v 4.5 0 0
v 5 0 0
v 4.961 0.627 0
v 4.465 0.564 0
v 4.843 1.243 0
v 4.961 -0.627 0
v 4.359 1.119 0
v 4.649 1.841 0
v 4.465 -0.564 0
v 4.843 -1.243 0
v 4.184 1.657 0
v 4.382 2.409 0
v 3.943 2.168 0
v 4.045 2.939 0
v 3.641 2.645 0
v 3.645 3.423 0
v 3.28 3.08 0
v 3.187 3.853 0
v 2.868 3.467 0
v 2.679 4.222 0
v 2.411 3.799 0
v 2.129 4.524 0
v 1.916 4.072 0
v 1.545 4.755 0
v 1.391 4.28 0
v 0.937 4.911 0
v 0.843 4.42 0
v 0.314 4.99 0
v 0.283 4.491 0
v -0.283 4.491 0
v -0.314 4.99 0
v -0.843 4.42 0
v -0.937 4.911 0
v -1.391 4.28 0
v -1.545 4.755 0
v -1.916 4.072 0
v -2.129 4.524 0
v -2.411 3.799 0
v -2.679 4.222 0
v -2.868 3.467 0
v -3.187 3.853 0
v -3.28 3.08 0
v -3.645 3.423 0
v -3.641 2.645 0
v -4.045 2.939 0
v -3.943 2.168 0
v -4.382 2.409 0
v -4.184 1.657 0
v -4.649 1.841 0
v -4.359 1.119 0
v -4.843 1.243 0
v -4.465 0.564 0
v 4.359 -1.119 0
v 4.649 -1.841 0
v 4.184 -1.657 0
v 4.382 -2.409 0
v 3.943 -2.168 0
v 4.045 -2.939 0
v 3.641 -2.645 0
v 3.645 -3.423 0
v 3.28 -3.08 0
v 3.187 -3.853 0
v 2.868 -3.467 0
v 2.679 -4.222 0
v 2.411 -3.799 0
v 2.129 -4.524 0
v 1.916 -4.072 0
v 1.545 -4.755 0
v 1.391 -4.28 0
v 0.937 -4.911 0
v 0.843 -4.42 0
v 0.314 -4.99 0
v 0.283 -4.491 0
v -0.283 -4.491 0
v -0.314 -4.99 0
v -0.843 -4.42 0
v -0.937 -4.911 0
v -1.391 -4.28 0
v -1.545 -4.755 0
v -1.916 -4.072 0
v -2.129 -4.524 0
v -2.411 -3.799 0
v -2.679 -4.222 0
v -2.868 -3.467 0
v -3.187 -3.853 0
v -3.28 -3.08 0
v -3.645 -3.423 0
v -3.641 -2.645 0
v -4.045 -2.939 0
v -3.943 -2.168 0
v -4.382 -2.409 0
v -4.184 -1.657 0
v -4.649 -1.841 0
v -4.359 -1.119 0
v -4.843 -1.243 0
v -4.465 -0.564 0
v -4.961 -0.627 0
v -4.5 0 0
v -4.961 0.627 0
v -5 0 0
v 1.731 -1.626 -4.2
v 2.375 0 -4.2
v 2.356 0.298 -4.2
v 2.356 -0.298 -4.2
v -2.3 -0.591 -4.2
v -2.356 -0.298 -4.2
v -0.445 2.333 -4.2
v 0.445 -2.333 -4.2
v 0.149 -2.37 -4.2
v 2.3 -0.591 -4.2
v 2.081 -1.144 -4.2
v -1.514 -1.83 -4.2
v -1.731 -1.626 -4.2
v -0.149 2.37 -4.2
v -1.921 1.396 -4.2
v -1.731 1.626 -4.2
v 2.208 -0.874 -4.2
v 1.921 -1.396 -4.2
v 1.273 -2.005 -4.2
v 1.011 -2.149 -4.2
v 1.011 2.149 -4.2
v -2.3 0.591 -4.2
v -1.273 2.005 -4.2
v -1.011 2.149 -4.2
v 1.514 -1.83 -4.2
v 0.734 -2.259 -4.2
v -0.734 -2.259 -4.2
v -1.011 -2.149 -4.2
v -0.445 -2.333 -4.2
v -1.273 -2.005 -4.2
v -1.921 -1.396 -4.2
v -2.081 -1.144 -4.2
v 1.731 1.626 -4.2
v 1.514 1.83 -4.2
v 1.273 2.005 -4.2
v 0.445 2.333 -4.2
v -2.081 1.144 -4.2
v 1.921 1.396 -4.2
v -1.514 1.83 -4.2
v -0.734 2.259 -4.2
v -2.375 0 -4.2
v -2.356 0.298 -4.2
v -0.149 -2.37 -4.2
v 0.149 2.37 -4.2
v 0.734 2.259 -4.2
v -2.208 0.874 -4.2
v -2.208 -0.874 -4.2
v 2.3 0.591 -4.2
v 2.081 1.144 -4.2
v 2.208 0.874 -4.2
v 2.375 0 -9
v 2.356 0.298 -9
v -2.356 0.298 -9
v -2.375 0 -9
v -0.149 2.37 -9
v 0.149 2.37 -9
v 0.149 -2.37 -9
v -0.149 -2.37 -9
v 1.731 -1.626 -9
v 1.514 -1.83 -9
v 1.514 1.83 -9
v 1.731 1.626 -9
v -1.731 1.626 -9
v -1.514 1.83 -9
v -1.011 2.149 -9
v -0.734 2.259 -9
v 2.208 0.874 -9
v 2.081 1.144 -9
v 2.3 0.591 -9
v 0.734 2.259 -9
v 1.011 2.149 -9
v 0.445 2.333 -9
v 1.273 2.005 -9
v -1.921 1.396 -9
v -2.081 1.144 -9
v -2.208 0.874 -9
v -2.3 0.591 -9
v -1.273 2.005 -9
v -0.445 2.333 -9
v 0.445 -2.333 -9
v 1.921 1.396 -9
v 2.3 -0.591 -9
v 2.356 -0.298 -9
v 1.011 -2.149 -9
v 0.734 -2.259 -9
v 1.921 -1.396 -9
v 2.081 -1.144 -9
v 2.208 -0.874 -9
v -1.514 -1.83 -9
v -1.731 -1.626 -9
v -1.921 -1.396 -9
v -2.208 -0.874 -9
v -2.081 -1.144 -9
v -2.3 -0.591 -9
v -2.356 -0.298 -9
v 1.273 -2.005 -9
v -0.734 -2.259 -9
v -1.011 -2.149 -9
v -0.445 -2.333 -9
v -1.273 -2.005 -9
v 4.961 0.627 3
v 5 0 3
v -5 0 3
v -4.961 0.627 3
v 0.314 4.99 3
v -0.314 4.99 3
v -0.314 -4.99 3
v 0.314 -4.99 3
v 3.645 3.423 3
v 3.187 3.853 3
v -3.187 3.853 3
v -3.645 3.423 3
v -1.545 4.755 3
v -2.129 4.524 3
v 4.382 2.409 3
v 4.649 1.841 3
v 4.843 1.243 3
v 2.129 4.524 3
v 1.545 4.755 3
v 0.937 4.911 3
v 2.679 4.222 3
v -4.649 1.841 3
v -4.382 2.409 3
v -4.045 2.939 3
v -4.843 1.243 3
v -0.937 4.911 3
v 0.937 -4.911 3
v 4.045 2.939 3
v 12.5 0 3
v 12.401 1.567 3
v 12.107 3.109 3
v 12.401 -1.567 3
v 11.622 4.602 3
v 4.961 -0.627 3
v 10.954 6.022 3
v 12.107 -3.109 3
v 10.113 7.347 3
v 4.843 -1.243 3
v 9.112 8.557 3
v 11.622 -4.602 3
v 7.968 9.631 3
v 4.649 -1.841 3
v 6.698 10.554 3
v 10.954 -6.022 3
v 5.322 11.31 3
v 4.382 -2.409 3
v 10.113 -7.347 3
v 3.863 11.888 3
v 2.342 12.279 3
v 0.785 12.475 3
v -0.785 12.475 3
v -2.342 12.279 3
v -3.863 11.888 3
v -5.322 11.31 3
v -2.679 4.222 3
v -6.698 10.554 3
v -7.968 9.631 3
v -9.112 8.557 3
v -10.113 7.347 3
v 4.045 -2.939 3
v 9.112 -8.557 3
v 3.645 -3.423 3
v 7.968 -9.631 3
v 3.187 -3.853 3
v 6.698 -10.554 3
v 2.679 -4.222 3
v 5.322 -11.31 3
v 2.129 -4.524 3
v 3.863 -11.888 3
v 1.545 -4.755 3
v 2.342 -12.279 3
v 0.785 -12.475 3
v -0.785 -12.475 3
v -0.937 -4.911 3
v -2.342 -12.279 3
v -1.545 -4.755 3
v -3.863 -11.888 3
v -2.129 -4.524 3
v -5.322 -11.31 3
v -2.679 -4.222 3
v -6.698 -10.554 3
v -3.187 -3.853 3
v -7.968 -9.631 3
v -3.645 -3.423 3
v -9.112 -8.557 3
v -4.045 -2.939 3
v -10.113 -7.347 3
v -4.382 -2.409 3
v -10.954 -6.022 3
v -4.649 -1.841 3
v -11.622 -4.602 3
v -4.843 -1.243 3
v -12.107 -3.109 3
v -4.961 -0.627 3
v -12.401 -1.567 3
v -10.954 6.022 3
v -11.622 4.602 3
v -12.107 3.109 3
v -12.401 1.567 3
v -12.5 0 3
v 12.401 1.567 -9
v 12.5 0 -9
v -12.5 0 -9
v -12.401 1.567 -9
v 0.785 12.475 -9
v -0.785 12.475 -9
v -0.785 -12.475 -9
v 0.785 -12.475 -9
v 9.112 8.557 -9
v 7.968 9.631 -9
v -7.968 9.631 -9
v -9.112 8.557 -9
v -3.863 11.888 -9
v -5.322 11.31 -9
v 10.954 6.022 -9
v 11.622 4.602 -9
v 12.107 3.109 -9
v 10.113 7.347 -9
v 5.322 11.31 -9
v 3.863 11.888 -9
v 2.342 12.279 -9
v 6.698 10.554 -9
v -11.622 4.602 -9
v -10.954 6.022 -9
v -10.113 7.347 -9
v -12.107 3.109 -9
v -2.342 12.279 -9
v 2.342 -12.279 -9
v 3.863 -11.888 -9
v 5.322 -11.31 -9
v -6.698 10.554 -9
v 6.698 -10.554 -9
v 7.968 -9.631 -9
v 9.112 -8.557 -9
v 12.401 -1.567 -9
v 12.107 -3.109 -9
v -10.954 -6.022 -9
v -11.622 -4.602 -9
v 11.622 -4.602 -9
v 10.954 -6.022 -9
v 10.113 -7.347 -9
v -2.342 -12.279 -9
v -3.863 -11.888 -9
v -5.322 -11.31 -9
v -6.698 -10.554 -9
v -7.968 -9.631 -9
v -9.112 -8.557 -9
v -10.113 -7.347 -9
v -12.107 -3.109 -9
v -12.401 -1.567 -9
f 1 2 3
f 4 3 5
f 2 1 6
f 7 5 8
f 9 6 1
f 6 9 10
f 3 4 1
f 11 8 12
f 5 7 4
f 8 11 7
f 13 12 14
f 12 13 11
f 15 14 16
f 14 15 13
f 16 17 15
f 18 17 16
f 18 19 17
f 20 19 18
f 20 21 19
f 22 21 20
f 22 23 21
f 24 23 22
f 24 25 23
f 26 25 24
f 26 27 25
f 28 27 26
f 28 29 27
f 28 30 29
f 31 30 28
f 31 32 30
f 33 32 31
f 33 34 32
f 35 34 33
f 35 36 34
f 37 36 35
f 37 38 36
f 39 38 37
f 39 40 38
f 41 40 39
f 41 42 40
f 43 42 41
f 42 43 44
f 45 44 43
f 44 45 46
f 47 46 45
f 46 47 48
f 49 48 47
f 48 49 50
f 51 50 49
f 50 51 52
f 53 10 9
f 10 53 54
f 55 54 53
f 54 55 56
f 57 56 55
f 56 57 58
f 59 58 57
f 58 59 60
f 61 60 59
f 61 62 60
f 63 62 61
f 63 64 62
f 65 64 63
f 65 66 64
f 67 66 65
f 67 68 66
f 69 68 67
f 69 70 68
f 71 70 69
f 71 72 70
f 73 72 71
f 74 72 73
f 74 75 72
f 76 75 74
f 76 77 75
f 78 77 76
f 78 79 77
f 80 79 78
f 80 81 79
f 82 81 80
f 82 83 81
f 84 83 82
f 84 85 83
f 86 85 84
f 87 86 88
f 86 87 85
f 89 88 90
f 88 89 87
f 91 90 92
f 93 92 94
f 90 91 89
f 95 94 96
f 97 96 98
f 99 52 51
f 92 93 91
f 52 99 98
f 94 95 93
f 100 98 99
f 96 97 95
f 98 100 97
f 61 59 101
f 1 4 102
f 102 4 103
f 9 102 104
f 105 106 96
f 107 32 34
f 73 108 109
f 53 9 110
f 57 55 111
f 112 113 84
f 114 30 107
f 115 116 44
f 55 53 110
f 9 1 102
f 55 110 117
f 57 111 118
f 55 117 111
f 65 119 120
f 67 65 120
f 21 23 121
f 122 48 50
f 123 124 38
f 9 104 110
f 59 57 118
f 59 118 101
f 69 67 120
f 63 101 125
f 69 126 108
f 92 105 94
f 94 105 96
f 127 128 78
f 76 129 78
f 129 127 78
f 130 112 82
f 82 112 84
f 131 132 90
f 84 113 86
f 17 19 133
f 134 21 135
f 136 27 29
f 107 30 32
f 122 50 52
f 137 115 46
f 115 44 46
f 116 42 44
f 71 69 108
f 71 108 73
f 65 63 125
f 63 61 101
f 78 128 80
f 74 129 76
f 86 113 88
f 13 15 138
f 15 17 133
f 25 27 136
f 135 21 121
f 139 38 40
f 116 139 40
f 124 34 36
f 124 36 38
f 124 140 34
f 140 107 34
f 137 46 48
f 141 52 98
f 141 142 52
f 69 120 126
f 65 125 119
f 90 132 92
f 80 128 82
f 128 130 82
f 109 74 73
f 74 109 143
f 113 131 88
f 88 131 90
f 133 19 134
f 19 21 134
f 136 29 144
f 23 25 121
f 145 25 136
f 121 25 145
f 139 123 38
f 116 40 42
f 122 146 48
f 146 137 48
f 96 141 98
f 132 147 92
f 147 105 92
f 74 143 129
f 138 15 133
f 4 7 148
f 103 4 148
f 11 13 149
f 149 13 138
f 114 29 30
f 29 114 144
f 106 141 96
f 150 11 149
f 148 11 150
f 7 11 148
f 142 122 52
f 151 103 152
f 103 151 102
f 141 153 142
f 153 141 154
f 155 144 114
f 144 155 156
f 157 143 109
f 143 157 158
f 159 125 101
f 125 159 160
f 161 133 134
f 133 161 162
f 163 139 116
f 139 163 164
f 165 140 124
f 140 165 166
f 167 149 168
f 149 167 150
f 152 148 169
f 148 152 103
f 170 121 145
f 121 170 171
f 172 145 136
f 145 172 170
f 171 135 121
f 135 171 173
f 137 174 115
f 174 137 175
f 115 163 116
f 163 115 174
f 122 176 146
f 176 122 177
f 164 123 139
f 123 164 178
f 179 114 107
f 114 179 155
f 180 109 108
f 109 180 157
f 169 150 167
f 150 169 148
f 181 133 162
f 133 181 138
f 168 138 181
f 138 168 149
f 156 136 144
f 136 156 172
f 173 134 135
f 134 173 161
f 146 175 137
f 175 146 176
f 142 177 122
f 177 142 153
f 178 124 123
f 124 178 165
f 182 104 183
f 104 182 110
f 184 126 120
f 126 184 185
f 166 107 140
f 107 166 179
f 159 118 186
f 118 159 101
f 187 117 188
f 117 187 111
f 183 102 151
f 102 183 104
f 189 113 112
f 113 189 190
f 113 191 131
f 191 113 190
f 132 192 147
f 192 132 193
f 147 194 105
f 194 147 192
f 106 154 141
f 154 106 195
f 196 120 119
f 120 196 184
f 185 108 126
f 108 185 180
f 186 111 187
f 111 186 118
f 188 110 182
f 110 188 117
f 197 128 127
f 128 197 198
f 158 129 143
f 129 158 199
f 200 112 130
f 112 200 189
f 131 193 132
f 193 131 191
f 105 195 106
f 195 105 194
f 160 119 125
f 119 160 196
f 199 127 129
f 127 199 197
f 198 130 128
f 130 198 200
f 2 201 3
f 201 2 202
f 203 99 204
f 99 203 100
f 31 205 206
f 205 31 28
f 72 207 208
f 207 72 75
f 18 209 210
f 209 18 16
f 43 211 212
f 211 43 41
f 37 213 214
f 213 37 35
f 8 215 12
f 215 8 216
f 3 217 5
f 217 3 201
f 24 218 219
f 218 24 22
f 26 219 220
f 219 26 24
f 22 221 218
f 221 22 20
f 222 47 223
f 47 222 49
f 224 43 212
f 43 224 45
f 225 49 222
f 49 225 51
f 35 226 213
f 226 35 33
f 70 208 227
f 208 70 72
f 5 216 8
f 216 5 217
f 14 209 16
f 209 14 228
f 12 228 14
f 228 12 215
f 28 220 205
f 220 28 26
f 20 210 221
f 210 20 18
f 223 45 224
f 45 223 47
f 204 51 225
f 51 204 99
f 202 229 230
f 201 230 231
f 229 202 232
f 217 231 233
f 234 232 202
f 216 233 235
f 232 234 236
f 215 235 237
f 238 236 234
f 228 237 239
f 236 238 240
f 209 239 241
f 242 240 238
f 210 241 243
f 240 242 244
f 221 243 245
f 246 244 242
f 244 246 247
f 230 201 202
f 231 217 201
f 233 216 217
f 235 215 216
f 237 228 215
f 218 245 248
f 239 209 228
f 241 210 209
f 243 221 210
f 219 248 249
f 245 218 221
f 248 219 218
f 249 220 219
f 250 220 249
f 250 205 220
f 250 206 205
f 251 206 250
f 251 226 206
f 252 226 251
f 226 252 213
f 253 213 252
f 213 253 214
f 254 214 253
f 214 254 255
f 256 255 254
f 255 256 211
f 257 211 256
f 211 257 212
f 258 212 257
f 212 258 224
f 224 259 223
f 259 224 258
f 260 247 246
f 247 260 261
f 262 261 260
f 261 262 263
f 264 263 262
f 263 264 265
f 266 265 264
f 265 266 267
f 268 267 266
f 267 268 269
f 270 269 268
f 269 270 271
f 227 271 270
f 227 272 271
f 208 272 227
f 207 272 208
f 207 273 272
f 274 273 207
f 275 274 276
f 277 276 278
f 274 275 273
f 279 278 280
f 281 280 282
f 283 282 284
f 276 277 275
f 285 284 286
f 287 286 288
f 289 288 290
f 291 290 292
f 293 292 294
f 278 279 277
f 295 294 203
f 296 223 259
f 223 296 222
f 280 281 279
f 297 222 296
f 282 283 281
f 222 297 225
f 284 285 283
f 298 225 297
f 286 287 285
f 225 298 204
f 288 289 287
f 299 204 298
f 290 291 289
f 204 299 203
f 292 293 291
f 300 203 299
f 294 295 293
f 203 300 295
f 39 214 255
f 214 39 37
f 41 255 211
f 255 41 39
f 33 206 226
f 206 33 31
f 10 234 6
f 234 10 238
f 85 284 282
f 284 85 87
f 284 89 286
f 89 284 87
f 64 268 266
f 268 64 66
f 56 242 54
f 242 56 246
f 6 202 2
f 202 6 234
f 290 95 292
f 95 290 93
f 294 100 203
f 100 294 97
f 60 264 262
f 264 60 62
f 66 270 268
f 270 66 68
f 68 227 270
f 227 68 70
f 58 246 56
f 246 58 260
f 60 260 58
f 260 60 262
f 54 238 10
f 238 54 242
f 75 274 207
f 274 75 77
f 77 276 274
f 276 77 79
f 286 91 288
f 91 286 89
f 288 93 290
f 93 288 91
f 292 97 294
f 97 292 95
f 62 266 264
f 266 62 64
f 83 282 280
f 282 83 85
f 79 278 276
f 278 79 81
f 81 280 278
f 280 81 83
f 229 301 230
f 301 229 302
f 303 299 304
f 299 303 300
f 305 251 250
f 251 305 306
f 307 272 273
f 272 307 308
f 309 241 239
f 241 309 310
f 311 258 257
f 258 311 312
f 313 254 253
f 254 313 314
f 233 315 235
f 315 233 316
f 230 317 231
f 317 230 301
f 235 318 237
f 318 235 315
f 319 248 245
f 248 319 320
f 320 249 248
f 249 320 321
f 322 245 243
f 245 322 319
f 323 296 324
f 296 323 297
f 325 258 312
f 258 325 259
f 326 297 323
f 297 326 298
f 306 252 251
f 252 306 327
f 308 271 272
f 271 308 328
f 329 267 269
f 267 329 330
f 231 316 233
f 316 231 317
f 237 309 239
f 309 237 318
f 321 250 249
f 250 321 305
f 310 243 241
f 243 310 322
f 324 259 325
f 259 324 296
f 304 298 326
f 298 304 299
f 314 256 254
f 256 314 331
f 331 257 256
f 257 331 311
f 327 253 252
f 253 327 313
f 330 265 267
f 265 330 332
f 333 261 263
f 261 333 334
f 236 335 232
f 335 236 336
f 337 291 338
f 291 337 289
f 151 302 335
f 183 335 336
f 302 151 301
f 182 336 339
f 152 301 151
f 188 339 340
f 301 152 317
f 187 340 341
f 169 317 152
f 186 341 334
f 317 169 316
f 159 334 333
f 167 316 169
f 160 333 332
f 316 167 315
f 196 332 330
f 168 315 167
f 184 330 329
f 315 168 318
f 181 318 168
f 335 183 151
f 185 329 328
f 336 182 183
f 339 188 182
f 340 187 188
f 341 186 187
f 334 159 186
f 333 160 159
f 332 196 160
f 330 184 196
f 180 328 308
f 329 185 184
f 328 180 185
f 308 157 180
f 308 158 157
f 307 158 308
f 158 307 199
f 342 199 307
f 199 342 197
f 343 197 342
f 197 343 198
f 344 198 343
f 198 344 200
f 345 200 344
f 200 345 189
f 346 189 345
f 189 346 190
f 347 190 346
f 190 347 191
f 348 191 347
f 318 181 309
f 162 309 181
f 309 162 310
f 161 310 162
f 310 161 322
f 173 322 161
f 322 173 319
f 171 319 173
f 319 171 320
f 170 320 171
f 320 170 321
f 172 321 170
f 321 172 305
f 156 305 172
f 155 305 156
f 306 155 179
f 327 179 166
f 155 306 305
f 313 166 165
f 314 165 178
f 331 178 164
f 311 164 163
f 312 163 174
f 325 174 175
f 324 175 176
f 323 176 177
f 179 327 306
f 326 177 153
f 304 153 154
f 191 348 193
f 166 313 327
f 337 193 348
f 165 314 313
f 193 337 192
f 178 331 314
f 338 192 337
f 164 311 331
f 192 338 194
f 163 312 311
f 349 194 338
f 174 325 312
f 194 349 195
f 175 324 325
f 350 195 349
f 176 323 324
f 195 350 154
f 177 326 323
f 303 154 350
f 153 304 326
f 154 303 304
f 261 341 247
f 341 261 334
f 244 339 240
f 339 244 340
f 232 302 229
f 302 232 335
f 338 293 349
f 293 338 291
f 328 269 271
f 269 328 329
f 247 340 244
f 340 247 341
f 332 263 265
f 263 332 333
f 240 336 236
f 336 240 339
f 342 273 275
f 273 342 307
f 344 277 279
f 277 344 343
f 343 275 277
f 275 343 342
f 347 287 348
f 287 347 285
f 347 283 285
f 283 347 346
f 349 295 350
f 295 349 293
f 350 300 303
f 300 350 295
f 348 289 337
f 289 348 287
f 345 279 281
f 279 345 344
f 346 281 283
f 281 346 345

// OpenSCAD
$fn = 50;


difference() {
	union() {
		translate(v = [0, 0, -9.0000000000]) {
			cylinder(h = 12, r = 12.5000000000);
		}
	}
	union() {
		translate(v = [0, 0, 0]) {
			rotate(a = [0, 0, 0]) {
				difference() {
					union() {
						translate(v = [0, 0, -12.0000000000]) {
							cylinder(h = 12, r = 2.2500000000);
						}
						translate(v = [0, 0, -4.2000000000]) {
							cylinder(h = 4.2000000000, r1 = 2.3750000000, r2 = 4.5000000000);
						}
						translate(v = [0, 0, -12.0000000000]) {
							cylinder(h = 12, r = 2.3750000000);
						}
						translate(v = [0, 0, -12.0000000000]) {
							cylinder(h = 12, r = 2.2500000000);
						}
					}
					union();
				}
			}
		}
		#cylinder(h = 3, r = 5.0000000000);
	}
}
